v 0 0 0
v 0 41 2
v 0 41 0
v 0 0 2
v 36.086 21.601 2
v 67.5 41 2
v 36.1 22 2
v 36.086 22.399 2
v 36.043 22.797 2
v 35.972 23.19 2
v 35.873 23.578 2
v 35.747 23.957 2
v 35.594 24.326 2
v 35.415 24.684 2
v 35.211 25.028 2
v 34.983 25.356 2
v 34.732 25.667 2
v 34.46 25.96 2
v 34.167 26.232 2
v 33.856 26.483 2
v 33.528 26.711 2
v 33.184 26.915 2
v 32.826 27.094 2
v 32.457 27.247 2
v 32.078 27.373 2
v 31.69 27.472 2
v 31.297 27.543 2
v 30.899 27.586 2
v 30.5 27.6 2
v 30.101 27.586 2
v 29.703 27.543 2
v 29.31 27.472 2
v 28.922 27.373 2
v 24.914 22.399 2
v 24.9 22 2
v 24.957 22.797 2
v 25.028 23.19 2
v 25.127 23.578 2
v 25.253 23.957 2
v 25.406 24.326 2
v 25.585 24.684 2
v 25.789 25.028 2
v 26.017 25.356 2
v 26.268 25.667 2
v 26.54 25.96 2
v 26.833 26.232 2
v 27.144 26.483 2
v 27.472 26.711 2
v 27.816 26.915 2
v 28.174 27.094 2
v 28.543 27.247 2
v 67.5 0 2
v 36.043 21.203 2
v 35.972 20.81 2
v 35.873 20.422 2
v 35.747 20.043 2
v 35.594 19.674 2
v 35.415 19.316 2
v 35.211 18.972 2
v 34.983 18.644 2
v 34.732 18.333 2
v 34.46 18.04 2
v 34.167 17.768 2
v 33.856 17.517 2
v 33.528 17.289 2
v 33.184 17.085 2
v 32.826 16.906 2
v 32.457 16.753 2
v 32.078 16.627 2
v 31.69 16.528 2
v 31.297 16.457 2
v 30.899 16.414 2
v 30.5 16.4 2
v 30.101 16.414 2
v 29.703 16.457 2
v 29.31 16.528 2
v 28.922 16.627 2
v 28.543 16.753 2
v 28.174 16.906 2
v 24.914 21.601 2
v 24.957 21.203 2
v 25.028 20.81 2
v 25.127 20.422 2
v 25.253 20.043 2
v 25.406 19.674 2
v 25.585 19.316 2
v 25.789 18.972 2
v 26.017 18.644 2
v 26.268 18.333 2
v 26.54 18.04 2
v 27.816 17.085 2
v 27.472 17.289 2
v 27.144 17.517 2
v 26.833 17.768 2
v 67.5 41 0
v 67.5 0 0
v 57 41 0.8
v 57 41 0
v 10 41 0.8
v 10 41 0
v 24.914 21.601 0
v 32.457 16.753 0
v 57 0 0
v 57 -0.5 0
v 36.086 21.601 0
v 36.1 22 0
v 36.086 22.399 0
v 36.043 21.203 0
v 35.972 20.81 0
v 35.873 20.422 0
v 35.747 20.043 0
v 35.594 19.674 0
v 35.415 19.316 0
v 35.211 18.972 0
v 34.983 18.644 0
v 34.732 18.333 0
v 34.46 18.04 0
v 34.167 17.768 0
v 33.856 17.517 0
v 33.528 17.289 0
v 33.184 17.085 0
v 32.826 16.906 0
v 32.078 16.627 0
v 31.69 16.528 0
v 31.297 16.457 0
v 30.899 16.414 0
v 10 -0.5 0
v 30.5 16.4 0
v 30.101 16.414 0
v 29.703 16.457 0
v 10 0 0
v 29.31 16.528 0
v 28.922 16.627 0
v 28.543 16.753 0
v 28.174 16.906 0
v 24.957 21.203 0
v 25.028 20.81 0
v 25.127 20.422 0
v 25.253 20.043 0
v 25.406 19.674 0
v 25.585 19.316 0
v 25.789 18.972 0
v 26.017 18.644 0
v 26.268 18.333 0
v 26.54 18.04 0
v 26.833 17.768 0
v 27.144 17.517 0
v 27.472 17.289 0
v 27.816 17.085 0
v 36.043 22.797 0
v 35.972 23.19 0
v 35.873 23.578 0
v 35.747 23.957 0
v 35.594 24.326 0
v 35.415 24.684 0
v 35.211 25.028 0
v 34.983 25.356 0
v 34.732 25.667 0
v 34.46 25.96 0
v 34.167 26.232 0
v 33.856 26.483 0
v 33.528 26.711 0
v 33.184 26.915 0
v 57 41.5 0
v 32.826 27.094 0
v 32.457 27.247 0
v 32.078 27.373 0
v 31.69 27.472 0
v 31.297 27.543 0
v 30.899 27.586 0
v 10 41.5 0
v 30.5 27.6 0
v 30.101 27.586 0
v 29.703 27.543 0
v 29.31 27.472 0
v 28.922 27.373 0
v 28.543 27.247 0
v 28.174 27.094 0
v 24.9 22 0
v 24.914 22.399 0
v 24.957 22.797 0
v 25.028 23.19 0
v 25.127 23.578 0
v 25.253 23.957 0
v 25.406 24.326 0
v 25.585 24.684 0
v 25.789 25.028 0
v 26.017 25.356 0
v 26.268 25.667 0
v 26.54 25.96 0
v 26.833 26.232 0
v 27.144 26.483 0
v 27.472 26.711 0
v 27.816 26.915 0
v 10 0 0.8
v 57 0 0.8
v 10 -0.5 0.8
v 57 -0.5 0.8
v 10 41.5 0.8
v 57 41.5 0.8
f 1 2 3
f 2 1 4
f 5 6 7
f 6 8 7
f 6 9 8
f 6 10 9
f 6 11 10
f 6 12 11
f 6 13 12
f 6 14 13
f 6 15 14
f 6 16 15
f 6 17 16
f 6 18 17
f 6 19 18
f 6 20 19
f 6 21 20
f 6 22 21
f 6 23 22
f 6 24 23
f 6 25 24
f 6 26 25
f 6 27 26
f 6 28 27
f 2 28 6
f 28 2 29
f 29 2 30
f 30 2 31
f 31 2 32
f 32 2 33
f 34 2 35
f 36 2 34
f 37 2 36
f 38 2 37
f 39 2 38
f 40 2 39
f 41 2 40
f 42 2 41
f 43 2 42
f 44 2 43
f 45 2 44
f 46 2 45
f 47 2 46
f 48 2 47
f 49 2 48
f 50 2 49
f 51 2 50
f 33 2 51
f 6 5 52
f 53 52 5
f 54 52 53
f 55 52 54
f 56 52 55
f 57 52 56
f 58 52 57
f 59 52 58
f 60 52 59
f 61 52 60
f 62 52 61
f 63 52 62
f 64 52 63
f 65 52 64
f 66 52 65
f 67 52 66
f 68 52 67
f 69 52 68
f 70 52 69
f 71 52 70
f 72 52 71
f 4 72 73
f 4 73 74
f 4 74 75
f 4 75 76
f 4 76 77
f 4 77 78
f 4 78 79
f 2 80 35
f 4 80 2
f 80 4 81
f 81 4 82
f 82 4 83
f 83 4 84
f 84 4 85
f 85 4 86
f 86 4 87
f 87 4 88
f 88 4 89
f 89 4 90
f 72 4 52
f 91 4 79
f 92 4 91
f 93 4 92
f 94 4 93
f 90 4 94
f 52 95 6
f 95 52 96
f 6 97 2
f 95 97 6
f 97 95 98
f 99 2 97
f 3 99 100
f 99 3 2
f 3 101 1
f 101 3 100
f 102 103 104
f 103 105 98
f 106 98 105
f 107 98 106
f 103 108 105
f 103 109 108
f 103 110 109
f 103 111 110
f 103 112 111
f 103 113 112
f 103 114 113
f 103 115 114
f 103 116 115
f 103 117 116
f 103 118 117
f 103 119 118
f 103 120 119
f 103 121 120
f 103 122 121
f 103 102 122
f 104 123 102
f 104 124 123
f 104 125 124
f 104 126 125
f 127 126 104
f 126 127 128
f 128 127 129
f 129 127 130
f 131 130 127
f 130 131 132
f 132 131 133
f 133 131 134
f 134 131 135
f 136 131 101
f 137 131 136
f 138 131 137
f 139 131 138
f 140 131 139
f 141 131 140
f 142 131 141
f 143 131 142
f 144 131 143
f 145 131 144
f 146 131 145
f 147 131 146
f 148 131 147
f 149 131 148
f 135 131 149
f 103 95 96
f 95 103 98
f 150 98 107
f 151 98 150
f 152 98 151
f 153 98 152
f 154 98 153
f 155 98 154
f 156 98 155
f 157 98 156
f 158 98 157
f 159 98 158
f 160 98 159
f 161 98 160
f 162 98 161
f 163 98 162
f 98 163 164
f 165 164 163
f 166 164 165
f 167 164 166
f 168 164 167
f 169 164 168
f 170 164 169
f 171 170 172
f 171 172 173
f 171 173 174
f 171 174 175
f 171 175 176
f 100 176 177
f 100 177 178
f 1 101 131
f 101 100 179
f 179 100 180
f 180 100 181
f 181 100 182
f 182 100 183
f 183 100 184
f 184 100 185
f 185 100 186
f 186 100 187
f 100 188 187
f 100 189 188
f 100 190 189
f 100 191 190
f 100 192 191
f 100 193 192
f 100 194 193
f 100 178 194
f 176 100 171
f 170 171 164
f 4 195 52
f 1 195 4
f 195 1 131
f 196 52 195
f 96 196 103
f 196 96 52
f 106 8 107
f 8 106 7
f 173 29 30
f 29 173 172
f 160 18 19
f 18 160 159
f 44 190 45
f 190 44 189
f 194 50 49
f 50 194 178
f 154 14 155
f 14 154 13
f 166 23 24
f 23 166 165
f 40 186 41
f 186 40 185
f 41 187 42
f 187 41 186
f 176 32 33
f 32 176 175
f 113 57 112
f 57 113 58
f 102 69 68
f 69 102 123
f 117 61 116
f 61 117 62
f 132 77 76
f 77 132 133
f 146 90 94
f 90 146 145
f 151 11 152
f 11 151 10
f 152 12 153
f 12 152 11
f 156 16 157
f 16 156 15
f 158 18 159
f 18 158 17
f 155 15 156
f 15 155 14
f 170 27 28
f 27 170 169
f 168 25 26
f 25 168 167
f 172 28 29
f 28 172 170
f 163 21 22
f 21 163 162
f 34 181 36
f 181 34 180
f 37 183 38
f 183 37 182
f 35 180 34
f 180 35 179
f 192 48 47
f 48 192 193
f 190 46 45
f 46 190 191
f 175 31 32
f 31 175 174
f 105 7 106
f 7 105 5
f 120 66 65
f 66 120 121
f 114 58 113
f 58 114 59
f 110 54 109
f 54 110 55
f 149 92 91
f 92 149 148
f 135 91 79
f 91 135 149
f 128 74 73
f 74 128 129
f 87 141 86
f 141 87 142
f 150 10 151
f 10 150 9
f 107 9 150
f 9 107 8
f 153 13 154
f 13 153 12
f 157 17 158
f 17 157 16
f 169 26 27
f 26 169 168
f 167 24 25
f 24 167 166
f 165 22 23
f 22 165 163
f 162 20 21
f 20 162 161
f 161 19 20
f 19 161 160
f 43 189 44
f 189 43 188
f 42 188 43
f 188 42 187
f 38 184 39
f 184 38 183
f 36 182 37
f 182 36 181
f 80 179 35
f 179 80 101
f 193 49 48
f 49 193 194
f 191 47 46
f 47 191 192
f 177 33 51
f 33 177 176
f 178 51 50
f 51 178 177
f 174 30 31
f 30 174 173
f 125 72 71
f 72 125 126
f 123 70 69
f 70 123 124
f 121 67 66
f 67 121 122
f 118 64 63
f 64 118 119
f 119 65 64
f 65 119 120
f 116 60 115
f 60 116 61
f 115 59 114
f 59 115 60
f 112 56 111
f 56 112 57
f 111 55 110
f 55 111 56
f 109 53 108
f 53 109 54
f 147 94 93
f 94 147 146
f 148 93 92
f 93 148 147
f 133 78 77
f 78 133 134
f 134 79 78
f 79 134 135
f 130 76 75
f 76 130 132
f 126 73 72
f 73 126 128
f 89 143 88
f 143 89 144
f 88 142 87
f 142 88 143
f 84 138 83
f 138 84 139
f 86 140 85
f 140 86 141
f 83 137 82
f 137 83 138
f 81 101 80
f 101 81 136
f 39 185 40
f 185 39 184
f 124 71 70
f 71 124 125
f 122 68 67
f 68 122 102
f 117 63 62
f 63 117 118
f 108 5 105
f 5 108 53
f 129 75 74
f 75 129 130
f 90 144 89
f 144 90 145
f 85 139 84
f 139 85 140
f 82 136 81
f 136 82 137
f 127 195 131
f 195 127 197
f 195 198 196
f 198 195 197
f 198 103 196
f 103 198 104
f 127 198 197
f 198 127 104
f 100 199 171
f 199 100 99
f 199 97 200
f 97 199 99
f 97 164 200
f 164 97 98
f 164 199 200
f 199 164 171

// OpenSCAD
$fa = 1;  
$fs = 0.4;  

difference() {
    cube([67.5, 41, 2]);
    
    translate([30.5, 22, -1])
        cylinder(h=4, r=5.6);

}

    // Indents on top inner long wall
    translate([10, -0.5, 0])
        cube([47, 0.7, 0.8]);

    translate([10, 40.8, 0])
        cube([47, 0.7, 0.8]);
